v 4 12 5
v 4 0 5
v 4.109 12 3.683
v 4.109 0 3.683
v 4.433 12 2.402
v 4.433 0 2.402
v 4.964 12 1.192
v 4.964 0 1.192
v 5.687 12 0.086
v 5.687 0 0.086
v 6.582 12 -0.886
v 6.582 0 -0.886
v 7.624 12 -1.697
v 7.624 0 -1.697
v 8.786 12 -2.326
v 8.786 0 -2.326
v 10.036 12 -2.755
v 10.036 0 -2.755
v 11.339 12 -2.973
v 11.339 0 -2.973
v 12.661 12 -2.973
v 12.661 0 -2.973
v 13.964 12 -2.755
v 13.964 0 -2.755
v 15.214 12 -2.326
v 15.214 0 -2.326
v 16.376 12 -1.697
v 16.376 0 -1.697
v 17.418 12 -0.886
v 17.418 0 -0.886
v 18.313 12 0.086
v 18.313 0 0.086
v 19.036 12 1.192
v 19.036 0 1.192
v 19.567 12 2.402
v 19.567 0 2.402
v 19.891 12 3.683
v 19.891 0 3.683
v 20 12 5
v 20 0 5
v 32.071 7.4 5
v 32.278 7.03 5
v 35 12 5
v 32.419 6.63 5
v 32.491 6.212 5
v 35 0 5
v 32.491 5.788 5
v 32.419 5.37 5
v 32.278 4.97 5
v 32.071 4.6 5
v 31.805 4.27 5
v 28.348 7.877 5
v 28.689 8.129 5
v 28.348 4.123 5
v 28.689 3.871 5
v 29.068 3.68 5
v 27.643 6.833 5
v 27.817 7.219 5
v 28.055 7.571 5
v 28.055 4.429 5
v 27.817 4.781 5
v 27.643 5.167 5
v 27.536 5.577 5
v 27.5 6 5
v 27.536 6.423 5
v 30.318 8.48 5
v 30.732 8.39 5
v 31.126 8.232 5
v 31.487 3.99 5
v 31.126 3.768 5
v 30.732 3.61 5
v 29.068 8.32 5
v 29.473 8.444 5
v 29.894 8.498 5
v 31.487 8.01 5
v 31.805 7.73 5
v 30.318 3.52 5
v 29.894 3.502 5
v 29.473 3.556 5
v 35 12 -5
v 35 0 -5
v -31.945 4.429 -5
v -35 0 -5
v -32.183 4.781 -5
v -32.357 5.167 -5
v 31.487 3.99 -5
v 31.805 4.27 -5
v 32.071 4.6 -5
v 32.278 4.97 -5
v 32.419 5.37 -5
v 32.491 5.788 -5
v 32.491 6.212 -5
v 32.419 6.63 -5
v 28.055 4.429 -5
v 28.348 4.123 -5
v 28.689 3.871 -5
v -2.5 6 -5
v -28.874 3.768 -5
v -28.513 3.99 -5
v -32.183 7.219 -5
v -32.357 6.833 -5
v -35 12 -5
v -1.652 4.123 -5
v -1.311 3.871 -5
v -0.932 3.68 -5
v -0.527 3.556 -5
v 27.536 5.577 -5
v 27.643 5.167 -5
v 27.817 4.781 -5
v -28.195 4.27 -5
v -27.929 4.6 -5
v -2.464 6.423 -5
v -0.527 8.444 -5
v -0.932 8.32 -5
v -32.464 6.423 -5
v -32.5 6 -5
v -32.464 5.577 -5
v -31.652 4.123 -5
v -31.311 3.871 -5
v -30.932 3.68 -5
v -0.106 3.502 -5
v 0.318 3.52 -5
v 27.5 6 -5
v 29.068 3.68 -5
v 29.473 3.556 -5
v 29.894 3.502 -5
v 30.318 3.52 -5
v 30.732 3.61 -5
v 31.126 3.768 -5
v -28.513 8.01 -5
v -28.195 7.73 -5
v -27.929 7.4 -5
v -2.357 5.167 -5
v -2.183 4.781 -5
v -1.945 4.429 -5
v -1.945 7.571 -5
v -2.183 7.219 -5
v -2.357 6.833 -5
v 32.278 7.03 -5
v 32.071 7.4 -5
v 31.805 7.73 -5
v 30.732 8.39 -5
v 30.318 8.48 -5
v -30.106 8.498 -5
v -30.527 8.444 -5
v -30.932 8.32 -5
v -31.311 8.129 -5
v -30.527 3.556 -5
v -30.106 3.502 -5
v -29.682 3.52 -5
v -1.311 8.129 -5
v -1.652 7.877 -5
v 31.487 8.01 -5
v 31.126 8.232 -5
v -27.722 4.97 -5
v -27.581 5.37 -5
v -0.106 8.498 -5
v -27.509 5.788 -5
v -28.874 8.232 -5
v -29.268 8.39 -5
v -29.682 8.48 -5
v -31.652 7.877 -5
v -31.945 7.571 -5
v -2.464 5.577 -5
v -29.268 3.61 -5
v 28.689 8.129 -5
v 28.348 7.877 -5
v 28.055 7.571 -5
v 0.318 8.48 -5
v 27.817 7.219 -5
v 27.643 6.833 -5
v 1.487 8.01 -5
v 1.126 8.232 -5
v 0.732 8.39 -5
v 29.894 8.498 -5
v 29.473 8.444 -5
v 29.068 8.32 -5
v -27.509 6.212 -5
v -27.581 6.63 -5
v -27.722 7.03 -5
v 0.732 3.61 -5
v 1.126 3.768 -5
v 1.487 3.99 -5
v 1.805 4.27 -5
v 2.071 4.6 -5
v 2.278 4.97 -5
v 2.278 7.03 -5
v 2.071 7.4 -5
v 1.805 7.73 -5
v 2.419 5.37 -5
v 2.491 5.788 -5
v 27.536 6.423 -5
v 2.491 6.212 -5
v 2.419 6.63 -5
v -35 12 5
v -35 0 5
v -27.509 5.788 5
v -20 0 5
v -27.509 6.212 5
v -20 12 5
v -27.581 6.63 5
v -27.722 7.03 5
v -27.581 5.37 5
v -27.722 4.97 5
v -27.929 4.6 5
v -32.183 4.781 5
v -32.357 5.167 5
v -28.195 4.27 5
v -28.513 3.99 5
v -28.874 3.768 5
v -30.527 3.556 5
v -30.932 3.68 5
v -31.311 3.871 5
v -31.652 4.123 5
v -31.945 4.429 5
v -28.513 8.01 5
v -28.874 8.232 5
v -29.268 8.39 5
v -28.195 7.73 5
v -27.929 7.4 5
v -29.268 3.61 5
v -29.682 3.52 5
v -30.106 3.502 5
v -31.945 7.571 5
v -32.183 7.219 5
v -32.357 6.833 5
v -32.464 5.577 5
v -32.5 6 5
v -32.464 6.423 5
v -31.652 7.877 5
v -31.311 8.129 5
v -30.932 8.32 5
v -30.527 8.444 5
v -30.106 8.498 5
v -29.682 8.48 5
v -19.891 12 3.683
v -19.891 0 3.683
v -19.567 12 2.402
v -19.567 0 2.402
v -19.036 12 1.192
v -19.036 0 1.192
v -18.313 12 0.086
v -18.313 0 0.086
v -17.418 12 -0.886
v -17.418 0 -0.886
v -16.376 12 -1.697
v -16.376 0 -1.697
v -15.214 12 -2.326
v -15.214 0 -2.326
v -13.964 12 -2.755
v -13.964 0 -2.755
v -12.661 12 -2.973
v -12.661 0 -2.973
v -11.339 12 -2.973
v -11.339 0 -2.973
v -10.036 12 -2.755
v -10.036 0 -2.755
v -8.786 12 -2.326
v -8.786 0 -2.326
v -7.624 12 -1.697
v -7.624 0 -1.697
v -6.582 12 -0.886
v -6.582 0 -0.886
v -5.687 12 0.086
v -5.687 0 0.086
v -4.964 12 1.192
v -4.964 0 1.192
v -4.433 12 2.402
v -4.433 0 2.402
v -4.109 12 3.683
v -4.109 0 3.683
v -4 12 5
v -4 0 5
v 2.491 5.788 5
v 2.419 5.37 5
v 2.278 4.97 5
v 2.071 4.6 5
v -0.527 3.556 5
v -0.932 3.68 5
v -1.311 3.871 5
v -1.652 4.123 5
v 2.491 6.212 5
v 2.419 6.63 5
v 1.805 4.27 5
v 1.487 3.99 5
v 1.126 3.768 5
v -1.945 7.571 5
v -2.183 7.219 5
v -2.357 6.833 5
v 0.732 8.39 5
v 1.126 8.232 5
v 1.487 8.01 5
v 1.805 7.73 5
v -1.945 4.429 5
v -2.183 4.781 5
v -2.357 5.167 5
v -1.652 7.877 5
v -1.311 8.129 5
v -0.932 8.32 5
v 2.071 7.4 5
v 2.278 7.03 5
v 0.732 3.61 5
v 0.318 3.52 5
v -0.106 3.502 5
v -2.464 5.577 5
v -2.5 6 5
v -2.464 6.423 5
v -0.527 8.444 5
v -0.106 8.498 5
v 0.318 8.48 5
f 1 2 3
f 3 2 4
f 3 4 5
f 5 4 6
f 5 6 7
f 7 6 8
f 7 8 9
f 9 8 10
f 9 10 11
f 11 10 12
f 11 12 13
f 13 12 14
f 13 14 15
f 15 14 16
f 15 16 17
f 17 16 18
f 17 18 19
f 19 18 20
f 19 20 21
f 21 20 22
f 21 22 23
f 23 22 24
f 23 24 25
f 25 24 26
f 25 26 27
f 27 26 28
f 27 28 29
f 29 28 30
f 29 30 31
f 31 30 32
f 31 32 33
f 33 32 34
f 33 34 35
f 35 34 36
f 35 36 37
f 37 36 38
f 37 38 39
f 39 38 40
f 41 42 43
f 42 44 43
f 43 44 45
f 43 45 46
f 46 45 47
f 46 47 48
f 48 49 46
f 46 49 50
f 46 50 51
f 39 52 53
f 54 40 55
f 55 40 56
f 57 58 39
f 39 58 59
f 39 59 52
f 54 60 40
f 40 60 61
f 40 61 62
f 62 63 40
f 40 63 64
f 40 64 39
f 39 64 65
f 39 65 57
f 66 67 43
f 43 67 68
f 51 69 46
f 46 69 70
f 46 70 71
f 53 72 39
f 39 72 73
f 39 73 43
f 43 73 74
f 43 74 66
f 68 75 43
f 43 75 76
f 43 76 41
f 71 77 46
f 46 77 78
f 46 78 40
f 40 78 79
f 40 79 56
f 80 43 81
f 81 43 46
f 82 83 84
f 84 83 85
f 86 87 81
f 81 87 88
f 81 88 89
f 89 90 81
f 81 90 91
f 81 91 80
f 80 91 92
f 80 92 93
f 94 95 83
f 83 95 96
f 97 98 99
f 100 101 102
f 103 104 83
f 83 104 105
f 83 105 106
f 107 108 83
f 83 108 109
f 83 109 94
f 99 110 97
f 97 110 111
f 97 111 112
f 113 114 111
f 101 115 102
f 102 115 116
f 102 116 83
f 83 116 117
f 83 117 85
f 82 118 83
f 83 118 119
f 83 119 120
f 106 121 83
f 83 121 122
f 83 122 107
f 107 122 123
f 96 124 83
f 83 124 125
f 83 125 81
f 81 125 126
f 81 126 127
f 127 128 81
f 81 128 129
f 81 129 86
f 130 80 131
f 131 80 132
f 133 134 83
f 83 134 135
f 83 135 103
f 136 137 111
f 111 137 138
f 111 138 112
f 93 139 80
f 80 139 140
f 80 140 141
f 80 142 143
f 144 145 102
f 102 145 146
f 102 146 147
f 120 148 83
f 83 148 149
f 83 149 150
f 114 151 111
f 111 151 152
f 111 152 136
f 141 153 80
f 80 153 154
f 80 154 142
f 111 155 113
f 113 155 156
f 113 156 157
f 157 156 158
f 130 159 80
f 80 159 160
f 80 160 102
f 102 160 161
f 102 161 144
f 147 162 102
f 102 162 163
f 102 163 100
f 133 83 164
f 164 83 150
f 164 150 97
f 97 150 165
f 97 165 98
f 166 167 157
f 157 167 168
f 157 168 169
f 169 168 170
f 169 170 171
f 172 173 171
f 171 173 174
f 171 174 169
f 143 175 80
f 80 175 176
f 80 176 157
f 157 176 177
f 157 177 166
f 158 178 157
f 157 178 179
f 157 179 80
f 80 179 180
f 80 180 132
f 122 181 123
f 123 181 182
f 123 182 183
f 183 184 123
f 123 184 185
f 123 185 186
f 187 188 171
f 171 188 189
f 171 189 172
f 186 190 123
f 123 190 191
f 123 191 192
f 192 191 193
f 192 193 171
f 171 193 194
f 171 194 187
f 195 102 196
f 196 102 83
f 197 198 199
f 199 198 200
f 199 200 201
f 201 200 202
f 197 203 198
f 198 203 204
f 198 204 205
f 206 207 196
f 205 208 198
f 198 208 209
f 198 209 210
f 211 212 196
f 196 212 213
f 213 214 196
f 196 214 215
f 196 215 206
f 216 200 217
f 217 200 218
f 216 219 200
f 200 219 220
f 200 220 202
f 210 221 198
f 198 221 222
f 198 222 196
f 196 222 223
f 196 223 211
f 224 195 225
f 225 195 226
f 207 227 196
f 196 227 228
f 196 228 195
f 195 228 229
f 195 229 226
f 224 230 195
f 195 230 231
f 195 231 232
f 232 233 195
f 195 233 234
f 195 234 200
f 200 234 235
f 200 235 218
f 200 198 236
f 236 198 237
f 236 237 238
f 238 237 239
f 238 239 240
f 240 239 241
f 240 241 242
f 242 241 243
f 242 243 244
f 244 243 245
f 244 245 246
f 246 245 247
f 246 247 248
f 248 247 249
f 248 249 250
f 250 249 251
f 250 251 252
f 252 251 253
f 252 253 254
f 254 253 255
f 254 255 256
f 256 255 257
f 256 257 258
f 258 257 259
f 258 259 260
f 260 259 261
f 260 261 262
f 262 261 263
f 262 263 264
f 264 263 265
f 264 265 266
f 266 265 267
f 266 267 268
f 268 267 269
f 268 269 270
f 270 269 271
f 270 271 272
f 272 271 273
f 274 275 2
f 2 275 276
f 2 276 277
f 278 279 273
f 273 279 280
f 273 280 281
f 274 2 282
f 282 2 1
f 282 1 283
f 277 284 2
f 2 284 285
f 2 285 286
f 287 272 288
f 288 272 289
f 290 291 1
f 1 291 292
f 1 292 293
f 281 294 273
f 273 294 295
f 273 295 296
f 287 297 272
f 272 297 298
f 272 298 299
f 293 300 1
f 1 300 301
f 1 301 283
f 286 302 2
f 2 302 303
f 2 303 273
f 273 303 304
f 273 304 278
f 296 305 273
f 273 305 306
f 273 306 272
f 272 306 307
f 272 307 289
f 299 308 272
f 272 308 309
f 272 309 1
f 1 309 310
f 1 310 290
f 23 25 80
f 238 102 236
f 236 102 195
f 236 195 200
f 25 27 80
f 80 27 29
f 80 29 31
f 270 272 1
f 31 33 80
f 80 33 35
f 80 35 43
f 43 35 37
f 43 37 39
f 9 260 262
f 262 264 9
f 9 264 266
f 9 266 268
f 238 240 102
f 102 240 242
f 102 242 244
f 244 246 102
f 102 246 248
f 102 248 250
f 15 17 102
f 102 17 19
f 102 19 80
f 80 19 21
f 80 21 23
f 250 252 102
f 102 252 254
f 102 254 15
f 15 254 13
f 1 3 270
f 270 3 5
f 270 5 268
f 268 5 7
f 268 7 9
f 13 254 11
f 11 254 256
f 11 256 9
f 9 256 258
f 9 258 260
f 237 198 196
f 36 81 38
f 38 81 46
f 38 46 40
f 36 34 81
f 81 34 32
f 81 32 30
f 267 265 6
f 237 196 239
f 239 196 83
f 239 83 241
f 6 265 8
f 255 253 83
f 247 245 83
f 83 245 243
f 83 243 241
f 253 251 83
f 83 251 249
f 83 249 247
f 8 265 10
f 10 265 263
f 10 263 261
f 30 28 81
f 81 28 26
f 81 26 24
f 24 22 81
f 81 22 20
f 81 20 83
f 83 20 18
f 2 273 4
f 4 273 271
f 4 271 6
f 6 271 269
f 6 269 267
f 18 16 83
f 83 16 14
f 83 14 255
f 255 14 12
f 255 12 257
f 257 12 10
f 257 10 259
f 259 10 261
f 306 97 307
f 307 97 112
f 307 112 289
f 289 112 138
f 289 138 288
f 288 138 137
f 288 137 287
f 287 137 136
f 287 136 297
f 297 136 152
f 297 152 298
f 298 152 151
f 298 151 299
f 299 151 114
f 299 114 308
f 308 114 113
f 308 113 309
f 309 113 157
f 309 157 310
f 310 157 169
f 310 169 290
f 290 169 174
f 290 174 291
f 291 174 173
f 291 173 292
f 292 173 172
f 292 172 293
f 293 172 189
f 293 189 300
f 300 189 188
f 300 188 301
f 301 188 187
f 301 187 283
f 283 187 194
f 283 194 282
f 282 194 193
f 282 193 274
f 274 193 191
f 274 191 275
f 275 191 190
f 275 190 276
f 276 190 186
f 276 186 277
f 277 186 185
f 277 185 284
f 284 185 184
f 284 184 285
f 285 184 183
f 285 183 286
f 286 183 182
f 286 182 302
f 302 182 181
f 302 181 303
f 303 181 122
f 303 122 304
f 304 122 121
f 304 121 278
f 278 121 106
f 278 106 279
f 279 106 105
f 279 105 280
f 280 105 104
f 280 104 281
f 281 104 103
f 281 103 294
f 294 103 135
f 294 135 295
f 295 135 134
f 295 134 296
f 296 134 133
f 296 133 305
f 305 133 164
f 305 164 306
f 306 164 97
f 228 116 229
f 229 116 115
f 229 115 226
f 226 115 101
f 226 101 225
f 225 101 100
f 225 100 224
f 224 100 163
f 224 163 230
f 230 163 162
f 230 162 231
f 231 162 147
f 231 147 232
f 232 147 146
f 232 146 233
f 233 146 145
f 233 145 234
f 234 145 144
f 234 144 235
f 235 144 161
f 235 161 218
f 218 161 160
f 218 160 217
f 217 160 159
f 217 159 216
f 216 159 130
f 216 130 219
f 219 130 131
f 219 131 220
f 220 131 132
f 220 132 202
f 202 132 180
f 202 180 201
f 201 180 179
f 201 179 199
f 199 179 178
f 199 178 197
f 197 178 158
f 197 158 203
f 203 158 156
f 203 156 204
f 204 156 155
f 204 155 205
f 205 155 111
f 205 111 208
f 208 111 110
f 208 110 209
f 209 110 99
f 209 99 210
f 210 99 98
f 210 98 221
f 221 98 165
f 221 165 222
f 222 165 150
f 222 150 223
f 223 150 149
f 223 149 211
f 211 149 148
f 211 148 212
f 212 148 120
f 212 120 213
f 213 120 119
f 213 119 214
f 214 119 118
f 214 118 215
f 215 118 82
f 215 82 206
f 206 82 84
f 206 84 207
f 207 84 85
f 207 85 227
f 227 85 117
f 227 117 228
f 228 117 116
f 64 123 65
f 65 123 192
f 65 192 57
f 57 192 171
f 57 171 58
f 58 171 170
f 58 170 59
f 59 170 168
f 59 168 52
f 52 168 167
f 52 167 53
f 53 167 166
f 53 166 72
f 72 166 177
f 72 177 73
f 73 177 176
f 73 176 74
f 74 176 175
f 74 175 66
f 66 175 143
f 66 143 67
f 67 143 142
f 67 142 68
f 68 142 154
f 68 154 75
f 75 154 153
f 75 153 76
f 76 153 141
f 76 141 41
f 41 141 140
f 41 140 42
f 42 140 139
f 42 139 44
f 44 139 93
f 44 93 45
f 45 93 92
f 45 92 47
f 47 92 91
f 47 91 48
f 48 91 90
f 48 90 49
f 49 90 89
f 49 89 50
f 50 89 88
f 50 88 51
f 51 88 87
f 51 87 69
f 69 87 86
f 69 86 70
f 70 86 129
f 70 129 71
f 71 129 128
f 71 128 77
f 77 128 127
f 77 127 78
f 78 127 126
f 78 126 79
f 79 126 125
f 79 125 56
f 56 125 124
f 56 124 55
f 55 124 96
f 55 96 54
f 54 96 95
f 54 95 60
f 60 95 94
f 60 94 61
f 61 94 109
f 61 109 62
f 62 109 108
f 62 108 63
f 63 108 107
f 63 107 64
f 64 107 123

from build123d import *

# Parameters (mm, degrees)
BOSS_EXTRUDE1_DEPTH = 12
SKETCH2_R           = 2.5
CUT_EXTRUDE1_DEPTH  = 10


with BuildPart() as part:
    # Sketch1 → Boss-Extrude1 (new body)
    with BuildSketch(Plane(origin=(0, 0, 0), x_dir=(1, 0, 0), z_dir=(0, 1, 0))):
        with BuildLine():
            Line((35, 5), (-35, 5))
            Line((-35, 5), (-35, -5))
            Line((-35, -5), (-20, -5))
            ThreePointArc((-20, -5), (-12, 3), (-4, -5))
            Line((-4, -5), (4, -5))
            ThreePointArc((4, -5), (12, 3), (20, -5))
            Line((20, -5), (35, -5))
            Line((35, -5), (35, 5))
        make_face()
    extrude(amount=BOSS_EXTRUDE1_DEPTH)

    # Sketch2 → Cut-Extrude1 (cut)
    with BuildSketch(Plane(origin=(0, 0, -5), x_dir=(-1, 0, 0), z_dir=(0, 0, -1))):
        with Locations((0, 6)):
            Circle(SKETCH2_R)
        with Locations((-30, 6)):
            Circle(SKETCH2_R)
        with Locations((30, 6)):
            Circle(SKETCH2_R)
    extrude(amount=-CUT_EXTRUDE1_DEPTH, mode=Mode.SUBTRACT)


solid = part.part
